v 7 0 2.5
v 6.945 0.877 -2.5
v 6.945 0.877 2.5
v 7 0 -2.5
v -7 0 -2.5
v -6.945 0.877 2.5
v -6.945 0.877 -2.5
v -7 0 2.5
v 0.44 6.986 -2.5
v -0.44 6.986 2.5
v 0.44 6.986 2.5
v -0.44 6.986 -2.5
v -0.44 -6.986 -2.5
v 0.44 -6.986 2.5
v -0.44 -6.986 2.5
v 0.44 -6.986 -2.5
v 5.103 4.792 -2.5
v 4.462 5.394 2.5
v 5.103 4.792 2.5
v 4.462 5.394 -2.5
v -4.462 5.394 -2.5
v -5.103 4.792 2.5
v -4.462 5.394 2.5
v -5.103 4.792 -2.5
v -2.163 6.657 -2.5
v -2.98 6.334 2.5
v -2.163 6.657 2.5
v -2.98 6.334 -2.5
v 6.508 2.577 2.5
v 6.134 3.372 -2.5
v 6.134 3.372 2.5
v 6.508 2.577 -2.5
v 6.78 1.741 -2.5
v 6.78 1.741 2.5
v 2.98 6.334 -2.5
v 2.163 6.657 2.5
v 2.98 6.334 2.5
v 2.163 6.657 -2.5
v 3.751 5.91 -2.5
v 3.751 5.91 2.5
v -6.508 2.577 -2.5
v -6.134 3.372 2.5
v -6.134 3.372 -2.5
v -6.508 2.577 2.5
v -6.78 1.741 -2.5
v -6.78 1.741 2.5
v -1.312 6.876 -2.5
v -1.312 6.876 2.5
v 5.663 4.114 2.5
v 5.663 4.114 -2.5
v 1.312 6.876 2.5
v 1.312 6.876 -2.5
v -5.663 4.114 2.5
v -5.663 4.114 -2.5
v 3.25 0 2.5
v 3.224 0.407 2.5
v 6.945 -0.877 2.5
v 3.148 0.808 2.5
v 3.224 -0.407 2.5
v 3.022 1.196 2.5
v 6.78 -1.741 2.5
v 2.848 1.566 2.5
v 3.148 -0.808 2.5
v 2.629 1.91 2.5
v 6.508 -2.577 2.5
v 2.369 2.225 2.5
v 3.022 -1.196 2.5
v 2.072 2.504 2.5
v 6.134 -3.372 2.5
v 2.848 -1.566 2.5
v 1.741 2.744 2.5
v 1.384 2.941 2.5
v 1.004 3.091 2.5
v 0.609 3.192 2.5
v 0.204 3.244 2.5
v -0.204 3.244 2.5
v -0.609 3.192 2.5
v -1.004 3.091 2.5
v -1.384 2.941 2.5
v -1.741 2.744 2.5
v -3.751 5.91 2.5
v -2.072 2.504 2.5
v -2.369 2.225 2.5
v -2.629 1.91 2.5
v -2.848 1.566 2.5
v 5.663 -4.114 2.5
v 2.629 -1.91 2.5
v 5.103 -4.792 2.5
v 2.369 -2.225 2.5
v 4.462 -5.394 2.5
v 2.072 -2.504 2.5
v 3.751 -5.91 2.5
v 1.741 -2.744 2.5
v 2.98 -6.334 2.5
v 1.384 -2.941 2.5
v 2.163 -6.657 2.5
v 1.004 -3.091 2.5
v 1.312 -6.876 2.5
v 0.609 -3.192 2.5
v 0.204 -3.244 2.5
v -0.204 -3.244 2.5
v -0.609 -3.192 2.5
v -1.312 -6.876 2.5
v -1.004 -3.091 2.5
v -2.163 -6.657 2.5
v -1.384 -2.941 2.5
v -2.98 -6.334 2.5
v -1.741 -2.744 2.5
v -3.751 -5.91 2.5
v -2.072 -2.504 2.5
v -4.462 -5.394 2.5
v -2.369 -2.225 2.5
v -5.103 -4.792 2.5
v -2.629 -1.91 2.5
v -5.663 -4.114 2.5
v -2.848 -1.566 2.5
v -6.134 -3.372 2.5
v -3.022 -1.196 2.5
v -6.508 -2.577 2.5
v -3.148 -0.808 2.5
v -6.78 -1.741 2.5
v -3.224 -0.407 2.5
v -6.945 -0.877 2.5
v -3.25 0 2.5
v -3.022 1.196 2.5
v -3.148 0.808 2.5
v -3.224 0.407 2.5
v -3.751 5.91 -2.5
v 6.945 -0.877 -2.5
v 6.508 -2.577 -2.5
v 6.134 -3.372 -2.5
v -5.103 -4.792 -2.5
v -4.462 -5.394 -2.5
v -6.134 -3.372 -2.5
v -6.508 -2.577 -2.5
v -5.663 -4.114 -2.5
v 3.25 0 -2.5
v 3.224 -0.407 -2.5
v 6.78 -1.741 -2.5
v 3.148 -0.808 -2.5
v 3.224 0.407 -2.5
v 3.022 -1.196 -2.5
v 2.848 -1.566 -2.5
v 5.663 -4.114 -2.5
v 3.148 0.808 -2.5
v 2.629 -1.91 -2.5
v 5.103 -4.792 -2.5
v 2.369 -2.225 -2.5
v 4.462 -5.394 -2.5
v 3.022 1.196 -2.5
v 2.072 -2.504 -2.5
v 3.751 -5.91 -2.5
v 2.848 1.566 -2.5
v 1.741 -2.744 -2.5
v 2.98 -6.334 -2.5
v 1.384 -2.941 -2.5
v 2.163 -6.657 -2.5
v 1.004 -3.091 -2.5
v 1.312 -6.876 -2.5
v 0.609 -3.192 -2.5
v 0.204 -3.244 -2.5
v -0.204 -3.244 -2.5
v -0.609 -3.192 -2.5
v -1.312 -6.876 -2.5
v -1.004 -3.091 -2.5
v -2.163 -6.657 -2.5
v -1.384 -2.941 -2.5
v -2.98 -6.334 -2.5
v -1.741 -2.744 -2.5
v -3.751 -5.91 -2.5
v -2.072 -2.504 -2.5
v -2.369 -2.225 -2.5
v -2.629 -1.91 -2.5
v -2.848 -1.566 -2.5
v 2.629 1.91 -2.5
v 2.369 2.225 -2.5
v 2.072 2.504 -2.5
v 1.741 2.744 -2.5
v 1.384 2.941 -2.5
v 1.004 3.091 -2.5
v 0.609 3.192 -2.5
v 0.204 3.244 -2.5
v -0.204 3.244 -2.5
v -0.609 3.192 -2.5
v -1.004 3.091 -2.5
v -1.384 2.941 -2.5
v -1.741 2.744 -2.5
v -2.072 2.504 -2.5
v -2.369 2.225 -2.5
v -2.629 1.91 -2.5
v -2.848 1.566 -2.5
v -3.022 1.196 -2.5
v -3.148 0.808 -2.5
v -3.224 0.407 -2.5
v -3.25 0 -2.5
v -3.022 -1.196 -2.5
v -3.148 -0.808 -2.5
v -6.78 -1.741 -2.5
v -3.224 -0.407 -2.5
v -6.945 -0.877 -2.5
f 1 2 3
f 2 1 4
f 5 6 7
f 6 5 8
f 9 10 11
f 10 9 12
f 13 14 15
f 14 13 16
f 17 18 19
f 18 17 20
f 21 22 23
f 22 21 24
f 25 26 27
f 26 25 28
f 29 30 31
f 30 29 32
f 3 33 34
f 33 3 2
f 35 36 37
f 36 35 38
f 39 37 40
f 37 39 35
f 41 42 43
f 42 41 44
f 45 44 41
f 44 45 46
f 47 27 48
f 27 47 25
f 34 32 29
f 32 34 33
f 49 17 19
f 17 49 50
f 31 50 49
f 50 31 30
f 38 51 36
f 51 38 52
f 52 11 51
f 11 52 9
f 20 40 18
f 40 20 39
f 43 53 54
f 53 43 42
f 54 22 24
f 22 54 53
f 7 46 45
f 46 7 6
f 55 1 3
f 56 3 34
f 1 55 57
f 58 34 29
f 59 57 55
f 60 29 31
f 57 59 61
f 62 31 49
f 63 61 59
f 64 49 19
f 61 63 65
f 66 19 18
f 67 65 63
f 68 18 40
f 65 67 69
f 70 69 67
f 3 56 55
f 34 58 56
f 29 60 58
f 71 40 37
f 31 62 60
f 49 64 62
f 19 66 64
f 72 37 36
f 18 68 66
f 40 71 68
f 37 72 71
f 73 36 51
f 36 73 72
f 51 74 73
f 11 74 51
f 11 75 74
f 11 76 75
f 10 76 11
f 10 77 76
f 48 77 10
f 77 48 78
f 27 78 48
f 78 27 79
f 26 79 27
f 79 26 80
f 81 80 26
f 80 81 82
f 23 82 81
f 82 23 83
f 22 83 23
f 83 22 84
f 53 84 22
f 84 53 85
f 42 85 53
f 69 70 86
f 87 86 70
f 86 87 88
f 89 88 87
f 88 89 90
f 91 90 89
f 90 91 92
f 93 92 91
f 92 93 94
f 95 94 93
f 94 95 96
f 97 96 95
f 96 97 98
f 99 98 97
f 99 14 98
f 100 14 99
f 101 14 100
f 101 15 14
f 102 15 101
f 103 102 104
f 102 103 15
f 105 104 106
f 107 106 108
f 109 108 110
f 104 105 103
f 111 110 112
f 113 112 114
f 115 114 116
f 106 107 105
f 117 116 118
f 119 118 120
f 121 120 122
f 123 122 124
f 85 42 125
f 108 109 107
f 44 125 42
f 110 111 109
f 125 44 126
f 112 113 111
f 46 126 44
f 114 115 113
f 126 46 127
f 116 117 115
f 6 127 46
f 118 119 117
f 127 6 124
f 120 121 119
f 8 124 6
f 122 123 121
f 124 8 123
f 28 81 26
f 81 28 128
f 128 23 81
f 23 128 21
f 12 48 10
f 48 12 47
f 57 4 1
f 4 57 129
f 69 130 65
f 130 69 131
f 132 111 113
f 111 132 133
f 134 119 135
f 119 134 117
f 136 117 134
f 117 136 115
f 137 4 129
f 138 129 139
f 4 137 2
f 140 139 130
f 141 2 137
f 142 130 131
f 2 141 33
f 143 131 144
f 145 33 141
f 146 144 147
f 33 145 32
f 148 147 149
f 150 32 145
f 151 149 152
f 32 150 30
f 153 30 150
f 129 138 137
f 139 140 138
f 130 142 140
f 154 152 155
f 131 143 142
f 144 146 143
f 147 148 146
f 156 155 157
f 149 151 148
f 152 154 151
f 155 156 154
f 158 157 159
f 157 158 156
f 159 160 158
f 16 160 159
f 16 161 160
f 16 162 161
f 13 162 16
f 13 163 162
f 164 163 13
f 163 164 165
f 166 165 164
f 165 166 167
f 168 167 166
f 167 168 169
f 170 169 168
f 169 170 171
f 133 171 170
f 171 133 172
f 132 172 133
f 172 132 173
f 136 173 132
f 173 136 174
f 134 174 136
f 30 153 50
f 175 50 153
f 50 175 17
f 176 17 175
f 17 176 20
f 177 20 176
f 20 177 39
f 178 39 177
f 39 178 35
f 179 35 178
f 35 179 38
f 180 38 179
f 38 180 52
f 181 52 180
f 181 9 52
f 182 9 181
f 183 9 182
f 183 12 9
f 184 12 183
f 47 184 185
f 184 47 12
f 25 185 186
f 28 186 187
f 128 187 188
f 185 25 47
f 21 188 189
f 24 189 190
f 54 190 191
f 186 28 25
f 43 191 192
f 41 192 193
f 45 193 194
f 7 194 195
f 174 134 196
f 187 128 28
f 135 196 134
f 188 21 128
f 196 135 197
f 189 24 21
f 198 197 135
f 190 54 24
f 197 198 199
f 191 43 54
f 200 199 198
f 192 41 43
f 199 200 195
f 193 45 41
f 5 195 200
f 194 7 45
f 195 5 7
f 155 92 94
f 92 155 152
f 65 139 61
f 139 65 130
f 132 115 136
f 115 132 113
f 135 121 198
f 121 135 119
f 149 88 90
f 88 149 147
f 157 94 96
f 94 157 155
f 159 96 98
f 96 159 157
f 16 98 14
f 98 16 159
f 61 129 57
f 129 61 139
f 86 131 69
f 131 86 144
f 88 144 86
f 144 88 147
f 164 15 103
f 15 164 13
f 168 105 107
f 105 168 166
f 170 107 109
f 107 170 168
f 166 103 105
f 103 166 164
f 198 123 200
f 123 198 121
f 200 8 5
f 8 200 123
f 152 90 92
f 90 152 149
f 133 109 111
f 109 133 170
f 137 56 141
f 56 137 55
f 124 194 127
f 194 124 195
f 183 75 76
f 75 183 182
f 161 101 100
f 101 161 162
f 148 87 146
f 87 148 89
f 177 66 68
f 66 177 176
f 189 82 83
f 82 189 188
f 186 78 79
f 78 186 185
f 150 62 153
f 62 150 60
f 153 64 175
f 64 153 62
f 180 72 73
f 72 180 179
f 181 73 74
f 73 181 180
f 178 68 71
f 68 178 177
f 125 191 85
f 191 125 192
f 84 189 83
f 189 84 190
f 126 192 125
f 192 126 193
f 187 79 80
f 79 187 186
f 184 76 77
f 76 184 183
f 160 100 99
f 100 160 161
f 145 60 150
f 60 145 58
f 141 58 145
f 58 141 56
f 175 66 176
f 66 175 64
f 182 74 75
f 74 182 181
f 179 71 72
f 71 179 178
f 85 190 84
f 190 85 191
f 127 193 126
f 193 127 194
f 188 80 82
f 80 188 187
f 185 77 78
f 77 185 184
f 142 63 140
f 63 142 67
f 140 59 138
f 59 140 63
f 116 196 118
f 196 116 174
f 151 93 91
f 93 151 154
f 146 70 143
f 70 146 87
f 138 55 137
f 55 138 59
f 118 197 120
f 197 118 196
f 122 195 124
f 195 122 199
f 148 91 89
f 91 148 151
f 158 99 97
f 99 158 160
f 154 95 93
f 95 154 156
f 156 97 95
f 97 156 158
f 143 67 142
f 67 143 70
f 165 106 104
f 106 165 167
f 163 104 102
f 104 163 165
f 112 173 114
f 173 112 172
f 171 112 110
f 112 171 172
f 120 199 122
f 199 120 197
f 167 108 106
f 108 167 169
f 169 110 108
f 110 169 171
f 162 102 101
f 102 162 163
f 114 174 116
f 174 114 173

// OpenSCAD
$fn = 50;


difference() {
	union() {
		translate(v = [0, 0, -2.5000000000]) {
			cylinder(h = 5, r = 7.0000000000);
		}
	}
	union() {
		translate(v = [0, 0, -100.0000000000]) {
			cylinder(h = 200, r = 3.2500000000);
		}
	}
}
